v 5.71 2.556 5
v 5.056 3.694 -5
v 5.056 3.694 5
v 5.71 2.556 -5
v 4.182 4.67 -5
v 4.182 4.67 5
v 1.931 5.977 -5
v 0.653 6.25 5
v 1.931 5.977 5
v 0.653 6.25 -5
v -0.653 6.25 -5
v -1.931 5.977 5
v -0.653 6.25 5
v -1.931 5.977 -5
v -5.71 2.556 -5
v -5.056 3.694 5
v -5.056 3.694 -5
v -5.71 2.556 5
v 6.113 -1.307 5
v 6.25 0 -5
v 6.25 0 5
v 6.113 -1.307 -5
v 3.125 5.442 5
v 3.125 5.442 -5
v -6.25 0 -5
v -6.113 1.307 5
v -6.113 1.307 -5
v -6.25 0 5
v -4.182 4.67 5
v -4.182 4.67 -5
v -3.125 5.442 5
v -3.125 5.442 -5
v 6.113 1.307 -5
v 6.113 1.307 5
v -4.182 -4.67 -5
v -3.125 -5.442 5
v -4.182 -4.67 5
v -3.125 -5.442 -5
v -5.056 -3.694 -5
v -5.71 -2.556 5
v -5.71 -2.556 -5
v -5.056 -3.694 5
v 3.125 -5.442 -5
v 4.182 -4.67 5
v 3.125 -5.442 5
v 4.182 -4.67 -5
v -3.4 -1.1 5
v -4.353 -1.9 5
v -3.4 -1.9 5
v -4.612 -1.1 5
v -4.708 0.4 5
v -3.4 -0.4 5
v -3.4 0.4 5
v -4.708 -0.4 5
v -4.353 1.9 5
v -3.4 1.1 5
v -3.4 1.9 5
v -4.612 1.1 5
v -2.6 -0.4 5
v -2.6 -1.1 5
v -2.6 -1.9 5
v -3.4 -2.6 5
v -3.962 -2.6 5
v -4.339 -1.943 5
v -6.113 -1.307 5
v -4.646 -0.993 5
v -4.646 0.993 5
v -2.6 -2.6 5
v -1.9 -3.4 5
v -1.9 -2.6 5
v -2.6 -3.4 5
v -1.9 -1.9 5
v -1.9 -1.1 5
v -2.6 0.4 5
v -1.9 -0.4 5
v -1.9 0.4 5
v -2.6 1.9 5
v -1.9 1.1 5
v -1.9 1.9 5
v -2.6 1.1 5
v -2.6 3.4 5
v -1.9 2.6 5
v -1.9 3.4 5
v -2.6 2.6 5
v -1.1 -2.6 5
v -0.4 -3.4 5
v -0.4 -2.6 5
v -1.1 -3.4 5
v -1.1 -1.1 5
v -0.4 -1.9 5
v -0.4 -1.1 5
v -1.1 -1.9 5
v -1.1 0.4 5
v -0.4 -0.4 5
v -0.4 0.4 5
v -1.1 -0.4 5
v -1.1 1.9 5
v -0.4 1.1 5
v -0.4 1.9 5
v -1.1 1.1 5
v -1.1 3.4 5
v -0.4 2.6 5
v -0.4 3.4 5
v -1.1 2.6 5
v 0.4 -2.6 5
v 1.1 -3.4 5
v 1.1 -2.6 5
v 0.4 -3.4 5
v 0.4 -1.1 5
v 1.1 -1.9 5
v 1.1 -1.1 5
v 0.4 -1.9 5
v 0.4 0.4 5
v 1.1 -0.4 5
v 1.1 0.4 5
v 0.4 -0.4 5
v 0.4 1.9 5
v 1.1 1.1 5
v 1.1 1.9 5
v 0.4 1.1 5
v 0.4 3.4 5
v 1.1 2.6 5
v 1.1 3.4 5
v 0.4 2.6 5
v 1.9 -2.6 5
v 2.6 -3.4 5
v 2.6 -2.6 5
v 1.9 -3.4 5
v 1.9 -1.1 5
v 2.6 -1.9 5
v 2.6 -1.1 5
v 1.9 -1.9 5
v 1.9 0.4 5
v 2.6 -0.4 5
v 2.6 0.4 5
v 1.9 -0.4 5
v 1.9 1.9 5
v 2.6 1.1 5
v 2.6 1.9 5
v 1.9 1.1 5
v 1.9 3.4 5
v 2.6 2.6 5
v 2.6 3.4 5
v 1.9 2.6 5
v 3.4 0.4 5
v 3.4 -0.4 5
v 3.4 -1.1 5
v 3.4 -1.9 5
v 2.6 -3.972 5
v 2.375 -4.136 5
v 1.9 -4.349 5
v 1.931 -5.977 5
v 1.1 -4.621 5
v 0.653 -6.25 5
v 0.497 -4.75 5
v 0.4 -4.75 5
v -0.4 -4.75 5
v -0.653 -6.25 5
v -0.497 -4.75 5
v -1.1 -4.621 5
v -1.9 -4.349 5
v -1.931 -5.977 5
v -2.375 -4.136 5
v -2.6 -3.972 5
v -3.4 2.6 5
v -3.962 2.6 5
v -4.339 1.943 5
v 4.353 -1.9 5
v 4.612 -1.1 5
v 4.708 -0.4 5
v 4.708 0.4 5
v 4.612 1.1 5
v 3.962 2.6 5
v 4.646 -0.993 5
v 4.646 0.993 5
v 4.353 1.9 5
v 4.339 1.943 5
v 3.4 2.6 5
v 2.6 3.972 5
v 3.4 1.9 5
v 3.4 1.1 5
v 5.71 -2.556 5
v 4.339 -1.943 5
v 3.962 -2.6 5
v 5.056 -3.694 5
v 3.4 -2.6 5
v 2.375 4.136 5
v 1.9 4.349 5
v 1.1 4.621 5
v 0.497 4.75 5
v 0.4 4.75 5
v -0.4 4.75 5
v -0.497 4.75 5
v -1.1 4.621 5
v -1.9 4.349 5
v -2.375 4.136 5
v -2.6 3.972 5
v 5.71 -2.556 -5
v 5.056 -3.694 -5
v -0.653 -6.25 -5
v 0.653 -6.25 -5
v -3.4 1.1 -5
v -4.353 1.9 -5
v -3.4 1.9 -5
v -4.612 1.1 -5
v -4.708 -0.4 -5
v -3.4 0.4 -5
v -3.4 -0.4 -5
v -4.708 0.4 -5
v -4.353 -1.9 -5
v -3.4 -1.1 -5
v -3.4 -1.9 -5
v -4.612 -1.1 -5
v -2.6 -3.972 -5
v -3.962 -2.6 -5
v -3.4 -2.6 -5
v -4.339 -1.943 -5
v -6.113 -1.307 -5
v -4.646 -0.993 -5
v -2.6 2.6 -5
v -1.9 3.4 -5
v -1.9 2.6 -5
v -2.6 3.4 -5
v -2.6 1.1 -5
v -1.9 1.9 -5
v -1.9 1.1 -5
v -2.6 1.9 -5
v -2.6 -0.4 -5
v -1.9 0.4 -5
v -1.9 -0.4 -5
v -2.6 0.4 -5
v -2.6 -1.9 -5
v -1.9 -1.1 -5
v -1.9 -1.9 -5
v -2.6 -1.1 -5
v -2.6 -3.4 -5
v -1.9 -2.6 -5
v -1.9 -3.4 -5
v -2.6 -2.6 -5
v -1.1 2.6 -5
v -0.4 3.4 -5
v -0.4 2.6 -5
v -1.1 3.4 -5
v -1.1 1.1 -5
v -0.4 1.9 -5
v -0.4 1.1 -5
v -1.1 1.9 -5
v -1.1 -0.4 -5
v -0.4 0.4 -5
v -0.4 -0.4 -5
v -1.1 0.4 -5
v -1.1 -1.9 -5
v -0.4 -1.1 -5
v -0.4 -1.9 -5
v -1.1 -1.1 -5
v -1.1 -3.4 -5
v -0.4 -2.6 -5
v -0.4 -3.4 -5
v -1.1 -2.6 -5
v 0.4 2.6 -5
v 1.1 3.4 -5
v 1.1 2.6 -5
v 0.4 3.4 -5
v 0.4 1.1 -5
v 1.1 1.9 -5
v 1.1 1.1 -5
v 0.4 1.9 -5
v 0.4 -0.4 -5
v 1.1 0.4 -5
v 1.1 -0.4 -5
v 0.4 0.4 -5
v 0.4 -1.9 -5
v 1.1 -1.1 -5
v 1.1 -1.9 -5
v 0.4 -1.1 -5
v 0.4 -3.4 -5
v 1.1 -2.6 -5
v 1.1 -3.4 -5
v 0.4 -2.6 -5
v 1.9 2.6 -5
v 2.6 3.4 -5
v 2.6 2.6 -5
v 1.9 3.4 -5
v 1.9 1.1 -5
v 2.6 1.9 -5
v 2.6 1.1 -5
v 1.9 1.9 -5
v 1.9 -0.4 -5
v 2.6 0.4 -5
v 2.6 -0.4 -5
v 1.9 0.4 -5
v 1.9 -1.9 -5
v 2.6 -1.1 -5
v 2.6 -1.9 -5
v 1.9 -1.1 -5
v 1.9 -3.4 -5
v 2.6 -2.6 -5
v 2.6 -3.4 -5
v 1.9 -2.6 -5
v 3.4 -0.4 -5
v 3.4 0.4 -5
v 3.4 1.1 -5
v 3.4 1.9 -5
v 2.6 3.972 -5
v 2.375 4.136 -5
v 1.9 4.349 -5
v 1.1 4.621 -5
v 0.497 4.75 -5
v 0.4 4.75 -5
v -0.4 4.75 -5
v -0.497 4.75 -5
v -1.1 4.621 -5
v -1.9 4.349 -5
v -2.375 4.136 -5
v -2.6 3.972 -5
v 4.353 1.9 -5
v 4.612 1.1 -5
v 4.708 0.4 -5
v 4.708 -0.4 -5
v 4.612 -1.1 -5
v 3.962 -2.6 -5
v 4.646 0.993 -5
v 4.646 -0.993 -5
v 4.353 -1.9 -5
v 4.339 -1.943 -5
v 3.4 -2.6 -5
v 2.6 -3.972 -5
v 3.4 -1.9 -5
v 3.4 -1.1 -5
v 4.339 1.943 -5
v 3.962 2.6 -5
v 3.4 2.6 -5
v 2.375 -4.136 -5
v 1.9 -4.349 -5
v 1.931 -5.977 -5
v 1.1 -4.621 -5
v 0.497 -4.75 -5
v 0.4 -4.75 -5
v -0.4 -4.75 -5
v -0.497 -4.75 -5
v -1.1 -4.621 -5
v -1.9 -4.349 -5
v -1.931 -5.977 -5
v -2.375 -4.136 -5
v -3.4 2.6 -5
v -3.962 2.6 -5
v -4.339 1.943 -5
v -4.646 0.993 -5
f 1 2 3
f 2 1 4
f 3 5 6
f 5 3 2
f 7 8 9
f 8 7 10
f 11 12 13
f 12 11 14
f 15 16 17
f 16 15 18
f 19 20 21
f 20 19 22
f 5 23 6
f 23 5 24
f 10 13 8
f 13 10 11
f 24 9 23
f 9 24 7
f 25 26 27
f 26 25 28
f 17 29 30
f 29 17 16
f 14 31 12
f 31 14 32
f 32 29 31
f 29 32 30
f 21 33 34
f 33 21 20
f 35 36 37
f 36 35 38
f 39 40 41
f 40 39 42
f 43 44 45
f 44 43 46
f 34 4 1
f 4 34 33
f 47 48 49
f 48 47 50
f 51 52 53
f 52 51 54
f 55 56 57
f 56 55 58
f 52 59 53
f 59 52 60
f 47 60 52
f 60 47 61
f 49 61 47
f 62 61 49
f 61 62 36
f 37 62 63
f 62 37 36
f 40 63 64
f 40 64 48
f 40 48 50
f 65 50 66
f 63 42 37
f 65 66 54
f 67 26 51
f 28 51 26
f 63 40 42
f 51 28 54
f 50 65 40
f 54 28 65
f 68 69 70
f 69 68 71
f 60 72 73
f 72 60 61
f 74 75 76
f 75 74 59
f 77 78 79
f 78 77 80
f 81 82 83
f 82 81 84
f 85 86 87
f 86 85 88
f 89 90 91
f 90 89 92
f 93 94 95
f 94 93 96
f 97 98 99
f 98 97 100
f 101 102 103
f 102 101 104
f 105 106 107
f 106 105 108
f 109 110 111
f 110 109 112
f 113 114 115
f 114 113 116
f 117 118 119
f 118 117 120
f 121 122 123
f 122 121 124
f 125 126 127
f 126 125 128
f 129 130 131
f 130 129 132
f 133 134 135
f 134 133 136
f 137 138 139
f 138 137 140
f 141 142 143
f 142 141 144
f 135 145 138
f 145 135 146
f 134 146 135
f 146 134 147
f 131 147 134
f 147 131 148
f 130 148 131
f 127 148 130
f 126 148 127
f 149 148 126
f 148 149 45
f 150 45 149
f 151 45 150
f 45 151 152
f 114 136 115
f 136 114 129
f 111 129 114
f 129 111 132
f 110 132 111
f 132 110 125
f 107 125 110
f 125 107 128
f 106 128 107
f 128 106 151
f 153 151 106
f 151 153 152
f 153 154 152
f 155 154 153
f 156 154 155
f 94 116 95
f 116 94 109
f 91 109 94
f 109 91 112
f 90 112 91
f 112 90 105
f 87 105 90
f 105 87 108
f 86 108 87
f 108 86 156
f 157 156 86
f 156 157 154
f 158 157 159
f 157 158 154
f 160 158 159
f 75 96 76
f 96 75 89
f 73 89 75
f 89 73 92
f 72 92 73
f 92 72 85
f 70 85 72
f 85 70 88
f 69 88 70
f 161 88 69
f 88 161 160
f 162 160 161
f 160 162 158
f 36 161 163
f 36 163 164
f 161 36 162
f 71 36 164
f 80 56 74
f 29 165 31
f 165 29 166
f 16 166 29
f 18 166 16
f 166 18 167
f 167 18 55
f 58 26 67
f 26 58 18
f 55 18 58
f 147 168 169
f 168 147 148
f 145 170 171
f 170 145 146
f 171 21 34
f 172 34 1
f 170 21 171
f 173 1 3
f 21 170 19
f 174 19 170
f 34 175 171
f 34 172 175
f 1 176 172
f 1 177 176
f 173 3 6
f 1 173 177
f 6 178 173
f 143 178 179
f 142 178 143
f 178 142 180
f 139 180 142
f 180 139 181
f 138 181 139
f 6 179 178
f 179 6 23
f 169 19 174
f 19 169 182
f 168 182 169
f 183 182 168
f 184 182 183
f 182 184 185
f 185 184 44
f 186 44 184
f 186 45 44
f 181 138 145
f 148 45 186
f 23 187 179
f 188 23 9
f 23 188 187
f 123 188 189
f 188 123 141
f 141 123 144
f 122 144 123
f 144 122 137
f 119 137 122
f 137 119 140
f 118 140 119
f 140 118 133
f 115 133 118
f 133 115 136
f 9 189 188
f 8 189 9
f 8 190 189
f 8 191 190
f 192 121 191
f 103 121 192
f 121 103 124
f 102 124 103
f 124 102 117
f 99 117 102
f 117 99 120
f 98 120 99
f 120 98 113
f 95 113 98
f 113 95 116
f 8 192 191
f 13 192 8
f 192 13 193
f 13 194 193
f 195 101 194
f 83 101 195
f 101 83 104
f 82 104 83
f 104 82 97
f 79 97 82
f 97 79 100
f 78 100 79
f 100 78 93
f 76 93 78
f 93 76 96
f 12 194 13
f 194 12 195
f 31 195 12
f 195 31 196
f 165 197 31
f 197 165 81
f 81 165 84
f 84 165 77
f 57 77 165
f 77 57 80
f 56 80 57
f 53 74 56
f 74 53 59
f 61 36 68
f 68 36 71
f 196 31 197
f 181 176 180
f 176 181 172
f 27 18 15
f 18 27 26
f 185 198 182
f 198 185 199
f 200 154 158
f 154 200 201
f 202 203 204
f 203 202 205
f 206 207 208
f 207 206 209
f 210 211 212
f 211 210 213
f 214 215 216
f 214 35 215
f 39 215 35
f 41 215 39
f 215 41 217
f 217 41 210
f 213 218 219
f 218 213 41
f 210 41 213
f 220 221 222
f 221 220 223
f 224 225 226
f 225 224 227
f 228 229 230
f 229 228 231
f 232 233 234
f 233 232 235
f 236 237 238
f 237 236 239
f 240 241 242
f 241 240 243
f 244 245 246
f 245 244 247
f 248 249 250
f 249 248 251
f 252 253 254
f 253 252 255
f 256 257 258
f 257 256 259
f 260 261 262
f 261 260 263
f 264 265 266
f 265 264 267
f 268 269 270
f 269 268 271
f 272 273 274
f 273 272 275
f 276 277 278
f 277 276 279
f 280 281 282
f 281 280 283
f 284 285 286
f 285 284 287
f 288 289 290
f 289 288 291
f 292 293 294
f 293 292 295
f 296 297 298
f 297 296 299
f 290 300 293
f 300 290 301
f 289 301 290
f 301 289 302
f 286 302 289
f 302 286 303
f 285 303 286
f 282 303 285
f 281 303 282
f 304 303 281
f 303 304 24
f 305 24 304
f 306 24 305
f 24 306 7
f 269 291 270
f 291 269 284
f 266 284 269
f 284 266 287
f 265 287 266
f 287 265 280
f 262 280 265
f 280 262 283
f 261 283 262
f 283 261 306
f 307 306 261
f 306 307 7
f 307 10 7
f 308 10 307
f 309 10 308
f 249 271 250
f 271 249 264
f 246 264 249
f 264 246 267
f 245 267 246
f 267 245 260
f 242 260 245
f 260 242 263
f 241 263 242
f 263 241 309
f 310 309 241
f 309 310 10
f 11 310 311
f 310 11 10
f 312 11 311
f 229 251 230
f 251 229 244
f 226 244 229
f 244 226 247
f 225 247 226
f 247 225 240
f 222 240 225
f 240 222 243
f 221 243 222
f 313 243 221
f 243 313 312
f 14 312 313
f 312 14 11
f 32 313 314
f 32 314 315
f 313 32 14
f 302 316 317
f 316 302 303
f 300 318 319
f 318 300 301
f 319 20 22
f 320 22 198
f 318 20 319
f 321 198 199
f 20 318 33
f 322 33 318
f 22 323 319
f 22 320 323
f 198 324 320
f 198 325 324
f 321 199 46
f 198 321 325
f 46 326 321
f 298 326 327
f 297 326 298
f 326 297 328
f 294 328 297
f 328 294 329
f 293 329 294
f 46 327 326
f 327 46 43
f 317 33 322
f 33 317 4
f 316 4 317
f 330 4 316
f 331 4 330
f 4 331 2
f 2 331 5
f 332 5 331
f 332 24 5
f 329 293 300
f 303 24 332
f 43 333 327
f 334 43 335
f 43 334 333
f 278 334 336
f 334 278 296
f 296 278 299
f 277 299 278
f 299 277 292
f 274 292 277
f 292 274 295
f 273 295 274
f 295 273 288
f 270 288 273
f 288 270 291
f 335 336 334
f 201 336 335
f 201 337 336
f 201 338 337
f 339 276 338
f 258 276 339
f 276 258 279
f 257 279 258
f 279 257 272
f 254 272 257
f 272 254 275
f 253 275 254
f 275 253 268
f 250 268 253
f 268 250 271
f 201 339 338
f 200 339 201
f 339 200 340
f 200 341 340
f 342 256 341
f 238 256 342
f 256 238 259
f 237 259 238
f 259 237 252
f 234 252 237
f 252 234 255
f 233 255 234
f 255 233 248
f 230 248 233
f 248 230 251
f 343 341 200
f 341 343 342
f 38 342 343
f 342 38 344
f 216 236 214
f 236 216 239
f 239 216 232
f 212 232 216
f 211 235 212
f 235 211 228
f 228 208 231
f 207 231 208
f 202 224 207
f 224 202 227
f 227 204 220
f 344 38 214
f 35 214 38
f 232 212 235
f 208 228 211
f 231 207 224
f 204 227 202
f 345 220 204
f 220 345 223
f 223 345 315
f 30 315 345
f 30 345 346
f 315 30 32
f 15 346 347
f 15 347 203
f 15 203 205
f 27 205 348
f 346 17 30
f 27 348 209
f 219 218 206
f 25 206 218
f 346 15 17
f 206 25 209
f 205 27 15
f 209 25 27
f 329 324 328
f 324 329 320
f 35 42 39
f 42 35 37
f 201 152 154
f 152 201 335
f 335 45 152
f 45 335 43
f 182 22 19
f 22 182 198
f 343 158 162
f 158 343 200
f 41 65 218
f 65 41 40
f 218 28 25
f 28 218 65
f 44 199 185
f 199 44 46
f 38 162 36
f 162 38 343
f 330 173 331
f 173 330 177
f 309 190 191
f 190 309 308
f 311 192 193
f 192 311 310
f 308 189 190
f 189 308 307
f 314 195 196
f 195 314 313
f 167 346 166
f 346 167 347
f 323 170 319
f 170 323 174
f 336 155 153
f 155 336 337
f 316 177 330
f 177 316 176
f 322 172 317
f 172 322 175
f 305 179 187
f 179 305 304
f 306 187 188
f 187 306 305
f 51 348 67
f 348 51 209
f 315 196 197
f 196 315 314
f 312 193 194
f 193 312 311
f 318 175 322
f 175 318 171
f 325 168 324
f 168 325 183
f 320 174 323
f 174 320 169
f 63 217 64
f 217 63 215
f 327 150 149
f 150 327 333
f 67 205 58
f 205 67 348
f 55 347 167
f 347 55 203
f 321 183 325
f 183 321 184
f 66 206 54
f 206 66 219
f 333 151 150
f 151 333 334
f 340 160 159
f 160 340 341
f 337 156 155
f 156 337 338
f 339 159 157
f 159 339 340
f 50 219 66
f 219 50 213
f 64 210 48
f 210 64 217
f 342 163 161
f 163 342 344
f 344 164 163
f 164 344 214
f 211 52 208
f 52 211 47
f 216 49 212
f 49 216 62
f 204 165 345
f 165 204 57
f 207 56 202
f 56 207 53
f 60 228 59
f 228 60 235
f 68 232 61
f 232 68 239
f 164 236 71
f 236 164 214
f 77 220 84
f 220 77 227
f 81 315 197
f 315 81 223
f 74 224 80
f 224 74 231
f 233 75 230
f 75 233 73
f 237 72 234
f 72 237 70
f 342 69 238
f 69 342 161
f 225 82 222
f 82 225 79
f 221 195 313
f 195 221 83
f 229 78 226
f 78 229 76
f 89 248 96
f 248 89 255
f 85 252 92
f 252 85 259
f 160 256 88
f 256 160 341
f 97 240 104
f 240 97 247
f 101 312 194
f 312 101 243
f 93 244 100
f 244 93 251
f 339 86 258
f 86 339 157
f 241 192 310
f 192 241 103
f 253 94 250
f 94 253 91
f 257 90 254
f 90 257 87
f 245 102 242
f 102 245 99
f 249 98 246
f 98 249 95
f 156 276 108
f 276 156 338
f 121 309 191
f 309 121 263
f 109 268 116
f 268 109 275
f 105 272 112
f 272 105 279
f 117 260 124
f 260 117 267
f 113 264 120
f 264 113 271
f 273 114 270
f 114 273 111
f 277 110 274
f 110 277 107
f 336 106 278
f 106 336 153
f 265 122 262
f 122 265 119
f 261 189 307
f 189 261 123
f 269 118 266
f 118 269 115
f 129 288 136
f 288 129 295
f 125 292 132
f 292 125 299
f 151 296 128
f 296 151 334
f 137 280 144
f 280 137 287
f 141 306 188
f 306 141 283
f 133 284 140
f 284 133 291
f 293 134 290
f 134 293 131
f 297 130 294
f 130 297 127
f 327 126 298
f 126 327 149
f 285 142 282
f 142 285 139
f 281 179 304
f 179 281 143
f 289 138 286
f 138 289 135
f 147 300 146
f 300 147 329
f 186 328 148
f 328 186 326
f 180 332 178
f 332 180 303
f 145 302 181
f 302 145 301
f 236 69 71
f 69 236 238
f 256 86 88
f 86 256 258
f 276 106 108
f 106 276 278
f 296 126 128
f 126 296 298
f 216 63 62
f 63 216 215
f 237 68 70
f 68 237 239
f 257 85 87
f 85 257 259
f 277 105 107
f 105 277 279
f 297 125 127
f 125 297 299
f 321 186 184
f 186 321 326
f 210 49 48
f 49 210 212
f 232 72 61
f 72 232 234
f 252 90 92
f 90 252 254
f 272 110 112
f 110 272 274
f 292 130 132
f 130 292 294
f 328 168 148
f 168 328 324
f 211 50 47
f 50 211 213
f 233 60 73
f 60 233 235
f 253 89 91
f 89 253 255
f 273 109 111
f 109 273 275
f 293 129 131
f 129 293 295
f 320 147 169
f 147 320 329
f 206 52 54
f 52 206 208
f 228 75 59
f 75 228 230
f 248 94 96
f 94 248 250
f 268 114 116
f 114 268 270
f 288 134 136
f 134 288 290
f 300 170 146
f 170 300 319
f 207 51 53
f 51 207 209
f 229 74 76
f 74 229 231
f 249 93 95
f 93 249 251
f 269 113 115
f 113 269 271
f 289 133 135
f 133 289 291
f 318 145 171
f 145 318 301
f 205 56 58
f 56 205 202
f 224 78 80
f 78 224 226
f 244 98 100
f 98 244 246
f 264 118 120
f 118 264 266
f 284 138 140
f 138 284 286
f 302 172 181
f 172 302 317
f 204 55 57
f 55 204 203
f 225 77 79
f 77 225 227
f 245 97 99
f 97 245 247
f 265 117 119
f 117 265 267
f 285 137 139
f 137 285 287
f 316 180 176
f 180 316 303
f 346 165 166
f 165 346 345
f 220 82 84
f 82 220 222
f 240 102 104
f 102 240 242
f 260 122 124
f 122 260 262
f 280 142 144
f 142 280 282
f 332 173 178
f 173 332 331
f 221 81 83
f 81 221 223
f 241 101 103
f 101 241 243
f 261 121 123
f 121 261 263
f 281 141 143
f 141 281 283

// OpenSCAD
include <../../lib/relativity.scad/relativity.scad> // https://github.com/davidson16807/relativity.scad

d = 12.5;
d_inner = 9.5;
height = 10;

distance = 1.5;
thickness = 0.8; // 0.68;
n = 2;

// ----------------

echo( pow(distance - thickness, 2) / pow(distance, 2) * 100, "%" );

$fn=30;

differed("hole", "not(hole)") {
  rod(d=d, h=height);
  rod(d=d_inner, h=height+1, $class="hole");
}

rotated(z*90, n=[0,1])
translated(x*distance, n=[-n:n])
  box([thickness, d_inner, height]);
